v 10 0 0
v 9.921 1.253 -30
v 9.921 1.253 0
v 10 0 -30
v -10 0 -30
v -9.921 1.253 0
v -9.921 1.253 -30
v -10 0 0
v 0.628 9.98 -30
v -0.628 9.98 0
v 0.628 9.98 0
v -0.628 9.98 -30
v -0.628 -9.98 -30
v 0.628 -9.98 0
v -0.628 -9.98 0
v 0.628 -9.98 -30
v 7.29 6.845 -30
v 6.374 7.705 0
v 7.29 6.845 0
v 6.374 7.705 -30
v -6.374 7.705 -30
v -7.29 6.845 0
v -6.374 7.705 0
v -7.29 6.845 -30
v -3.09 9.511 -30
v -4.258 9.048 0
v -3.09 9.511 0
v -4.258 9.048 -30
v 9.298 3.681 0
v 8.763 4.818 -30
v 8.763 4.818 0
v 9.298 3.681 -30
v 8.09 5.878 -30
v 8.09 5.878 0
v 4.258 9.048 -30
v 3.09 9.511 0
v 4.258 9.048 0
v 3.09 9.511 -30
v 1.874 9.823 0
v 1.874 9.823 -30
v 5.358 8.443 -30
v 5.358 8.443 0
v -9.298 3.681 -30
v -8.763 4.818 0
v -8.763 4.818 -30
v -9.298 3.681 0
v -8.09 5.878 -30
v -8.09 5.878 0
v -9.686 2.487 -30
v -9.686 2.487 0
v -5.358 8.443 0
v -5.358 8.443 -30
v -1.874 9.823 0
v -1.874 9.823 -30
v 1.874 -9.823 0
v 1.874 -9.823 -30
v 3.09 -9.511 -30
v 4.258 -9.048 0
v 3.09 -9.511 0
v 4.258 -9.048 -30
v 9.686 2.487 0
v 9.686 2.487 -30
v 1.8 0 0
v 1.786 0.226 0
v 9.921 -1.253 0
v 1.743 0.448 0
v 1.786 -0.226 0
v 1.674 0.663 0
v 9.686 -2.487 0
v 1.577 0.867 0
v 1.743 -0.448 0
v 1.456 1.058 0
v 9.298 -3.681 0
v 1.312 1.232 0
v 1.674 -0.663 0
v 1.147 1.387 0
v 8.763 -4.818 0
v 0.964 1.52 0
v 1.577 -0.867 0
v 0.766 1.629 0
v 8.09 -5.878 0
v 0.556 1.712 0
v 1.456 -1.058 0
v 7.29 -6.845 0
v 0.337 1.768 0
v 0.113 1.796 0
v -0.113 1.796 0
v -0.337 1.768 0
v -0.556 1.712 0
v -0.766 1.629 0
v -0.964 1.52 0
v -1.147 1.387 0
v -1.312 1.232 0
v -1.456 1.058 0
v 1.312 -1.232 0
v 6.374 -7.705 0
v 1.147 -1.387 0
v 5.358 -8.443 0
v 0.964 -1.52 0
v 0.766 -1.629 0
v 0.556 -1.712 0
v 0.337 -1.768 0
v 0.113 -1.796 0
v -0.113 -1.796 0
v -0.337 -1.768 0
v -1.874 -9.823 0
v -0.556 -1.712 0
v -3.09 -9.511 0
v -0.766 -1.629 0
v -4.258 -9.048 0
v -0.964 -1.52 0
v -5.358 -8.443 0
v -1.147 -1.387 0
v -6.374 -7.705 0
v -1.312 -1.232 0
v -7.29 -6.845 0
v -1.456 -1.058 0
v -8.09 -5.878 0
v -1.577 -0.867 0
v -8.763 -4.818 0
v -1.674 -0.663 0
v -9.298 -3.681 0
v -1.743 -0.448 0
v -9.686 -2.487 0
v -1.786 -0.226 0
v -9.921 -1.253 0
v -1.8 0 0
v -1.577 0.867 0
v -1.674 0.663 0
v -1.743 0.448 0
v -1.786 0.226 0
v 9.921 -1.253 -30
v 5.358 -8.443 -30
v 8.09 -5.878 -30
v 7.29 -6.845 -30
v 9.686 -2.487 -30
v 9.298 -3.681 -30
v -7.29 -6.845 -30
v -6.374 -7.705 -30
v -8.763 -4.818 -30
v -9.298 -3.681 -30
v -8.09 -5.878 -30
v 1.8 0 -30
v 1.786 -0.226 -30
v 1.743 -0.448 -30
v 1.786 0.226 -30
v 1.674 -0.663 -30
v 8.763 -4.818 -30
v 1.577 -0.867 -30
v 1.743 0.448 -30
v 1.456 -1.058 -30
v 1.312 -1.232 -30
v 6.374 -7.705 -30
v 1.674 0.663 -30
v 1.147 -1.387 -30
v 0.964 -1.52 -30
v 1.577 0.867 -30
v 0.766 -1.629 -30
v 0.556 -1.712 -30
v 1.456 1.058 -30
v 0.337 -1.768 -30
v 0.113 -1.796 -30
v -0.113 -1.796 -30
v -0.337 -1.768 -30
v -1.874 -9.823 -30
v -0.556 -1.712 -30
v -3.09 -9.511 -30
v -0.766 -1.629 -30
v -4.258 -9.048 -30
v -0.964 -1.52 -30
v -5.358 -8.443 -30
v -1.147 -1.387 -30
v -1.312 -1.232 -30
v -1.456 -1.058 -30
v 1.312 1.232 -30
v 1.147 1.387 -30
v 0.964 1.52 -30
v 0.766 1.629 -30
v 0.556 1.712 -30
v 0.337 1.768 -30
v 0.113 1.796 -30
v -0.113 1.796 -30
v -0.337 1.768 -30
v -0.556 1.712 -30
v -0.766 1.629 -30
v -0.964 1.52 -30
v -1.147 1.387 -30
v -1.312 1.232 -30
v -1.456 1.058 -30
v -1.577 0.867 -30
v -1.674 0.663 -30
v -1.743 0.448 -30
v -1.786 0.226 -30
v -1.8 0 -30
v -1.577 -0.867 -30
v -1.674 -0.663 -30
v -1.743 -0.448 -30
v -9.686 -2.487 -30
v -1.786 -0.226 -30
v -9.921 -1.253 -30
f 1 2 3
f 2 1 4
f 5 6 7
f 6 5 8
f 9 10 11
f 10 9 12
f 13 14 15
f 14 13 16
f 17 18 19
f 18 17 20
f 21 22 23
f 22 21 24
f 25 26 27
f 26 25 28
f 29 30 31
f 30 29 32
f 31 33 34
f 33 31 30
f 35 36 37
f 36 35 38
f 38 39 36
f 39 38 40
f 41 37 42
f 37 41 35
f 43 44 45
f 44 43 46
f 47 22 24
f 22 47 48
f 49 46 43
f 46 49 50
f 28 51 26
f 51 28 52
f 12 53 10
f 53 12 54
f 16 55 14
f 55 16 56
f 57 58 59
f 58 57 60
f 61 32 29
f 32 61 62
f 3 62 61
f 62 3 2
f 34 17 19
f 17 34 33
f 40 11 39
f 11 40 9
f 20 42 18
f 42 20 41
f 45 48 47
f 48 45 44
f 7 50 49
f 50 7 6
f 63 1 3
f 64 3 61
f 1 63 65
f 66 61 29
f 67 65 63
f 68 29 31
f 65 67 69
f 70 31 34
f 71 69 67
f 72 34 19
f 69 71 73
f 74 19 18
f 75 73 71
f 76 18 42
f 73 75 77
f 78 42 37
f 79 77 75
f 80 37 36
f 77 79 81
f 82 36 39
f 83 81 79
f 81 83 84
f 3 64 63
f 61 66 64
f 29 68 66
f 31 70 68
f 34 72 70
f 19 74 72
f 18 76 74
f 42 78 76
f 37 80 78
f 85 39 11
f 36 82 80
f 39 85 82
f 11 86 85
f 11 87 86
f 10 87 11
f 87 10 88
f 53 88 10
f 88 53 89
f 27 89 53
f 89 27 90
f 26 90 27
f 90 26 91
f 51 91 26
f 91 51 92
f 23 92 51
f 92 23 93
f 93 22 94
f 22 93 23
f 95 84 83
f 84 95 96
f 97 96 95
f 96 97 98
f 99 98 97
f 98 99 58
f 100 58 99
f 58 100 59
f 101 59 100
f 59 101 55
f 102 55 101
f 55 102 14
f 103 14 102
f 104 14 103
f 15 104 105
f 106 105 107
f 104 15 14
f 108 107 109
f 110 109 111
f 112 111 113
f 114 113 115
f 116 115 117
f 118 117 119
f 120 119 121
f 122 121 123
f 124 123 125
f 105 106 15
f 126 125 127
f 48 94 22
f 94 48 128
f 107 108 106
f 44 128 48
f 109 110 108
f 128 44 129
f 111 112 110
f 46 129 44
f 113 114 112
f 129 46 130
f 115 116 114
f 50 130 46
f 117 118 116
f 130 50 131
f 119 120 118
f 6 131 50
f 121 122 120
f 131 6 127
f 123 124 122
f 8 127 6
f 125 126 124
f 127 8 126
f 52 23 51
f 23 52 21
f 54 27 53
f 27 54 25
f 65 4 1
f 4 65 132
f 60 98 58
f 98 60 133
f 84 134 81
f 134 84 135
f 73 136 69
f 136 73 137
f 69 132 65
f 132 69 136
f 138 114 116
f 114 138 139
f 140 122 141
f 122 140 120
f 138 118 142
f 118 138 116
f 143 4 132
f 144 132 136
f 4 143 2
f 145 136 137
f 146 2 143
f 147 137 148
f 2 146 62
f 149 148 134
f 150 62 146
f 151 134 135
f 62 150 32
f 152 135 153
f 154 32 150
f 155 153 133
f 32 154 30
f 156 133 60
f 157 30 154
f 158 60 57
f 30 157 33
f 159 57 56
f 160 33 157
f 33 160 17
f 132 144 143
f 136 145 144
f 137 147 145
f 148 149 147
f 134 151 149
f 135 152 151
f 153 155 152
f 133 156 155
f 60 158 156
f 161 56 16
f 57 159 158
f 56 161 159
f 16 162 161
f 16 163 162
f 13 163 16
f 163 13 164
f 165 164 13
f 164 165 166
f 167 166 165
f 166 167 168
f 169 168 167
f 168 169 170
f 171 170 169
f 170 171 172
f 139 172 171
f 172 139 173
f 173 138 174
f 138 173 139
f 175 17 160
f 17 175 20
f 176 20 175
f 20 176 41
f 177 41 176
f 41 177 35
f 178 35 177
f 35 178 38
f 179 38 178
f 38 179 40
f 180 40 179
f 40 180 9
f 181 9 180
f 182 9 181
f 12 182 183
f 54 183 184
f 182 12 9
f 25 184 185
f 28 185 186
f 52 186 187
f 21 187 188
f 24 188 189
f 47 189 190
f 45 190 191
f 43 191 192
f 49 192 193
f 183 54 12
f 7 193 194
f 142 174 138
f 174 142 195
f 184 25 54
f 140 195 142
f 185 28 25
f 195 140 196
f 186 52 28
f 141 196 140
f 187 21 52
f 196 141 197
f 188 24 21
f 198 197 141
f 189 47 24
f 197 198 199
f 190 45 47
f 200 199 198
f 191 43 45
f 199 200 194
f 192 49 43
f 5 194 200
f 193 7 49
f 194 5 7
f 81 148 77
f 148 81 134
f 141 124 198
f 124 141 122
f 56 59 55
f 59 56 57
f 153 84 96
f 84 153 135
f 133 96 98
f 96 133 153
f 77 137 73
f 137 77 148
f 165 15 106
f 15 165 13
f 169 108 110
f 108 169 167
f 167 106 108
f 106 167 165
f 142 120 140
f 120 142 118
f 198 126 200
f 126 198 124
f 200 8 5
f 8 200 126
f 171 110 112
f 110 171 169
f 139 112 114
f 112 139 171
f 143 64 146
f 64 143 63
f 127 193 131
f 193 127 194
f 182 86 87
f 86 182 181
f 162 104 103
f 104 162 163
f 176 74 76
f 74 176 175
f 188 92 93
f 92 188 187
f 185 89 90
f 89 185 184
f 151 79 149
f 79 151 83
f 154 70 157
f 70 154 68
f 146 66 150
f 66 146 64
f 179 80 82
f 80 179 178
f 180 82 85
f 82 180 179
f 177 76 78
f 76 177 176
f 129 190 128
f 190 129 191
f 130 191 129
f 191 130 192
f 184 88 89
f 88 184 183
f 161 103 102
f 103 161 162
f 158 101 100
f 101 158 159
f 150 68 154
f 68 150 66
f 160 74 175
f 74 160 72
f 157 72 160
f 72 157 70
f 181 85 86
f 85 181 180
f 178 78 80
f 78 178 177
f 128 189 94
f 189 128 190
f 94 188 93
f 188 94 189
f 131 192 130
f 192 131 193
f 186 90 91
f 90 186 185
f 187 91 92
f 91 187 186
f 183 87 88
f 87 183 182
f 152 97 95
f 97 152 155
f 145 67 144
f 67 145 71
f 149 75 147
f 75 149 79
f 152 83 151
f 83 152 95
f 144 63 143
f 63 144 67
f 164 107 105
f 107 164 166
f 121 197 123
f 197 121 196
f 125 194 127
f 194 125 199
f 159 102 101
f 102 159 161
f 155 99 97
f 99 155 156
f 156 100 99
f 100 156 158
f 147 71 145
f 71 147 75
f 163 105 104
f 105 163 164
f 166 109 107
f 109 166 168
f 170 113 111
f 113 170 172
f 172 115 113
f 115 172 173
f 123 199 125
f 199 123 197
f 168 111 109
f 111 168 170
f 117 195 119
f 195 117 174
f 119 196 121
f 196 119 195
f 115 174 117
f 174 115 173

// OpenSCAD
$fn = 50;


difference() {
	union() {
		translate(v = [0, 0, -30.0000000000]) {
			cylinder(h = 30, r = 10.0000000000);
		}
		cylinder(h = 0, r = 20.0000000000);
	}
	union() {
		#translate(v = [0, 0, -30]) {
			cylinder(h = 30, r = 1.8000000000);
		}
	}
}
